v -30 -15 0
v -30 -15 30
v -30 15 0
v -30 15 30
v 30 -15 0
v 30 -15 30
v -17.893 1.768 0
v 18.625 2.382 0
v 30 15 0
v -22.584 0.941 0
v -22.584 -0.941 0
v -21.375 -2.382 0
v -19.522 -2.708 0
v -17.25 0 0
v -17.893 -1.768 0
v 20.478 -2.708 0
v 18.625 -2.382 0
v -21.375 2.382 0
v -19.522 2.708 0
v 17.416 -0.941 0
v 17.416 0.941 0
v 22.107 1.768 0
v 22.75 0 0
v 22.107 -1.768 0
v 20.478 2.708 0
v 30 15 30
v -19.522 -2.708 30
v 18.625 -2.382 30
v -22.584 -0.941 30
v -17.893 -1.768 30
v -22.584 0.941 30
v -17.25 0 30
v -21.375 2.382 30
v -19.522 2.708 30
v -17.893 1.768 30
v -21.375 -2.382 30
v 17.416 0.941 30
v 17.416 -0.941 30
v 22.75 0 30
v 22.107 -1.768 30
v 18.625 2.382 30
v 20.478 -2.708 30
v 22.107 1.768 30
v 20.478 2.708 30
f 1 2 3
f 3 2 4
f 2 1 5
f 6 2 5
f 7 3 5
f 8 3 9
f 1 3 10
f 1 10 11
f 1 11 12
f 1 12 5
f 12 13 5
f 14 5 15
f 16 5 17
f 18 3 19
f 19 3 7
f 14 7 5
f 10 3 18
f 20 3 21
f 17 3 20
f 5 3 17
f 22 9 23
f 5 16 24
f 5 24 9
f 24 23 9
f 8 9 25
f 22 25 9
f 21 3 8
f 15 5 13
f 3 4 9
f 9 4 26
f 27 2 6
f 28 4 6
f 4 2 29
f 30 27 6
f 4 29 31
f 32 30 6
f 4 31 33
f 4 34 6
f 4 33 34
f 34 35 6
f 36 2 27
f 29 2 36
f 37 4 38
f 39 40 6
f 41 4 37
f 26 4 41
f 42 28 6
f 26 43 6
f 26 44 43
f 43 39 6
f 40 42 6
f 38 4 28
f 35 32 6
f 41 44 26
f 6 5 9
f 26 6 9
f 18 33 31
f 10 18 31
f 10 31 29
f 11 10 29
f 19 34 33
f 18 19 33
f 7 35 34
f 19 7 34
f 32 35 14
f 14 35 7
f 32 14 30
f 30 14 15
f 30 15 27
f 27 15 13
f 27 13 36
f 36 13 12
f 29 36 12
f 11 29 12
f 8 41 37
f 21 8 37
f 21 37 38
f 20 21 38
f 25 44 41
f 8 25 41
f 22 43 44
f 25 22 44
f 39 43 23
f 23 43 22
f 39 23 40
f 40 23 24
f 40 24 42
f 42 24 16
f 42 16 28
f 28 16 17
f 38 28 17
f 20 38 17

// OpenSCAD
/**
 * ZSpacer
 * 
 * Created by Diego Viejo
 * 24/03/2015
 * 
 * GPL V3
 * 
 */

height = 30;


difference()
{
  translate([-60/2, -30/2,0]) cube([60, 30, height]);
  
  for(i = [-1, 1])
  {
    translate([20*i, 0, -1]) cylinder(r=2.5+0.25, h=height+2);
  }
}
